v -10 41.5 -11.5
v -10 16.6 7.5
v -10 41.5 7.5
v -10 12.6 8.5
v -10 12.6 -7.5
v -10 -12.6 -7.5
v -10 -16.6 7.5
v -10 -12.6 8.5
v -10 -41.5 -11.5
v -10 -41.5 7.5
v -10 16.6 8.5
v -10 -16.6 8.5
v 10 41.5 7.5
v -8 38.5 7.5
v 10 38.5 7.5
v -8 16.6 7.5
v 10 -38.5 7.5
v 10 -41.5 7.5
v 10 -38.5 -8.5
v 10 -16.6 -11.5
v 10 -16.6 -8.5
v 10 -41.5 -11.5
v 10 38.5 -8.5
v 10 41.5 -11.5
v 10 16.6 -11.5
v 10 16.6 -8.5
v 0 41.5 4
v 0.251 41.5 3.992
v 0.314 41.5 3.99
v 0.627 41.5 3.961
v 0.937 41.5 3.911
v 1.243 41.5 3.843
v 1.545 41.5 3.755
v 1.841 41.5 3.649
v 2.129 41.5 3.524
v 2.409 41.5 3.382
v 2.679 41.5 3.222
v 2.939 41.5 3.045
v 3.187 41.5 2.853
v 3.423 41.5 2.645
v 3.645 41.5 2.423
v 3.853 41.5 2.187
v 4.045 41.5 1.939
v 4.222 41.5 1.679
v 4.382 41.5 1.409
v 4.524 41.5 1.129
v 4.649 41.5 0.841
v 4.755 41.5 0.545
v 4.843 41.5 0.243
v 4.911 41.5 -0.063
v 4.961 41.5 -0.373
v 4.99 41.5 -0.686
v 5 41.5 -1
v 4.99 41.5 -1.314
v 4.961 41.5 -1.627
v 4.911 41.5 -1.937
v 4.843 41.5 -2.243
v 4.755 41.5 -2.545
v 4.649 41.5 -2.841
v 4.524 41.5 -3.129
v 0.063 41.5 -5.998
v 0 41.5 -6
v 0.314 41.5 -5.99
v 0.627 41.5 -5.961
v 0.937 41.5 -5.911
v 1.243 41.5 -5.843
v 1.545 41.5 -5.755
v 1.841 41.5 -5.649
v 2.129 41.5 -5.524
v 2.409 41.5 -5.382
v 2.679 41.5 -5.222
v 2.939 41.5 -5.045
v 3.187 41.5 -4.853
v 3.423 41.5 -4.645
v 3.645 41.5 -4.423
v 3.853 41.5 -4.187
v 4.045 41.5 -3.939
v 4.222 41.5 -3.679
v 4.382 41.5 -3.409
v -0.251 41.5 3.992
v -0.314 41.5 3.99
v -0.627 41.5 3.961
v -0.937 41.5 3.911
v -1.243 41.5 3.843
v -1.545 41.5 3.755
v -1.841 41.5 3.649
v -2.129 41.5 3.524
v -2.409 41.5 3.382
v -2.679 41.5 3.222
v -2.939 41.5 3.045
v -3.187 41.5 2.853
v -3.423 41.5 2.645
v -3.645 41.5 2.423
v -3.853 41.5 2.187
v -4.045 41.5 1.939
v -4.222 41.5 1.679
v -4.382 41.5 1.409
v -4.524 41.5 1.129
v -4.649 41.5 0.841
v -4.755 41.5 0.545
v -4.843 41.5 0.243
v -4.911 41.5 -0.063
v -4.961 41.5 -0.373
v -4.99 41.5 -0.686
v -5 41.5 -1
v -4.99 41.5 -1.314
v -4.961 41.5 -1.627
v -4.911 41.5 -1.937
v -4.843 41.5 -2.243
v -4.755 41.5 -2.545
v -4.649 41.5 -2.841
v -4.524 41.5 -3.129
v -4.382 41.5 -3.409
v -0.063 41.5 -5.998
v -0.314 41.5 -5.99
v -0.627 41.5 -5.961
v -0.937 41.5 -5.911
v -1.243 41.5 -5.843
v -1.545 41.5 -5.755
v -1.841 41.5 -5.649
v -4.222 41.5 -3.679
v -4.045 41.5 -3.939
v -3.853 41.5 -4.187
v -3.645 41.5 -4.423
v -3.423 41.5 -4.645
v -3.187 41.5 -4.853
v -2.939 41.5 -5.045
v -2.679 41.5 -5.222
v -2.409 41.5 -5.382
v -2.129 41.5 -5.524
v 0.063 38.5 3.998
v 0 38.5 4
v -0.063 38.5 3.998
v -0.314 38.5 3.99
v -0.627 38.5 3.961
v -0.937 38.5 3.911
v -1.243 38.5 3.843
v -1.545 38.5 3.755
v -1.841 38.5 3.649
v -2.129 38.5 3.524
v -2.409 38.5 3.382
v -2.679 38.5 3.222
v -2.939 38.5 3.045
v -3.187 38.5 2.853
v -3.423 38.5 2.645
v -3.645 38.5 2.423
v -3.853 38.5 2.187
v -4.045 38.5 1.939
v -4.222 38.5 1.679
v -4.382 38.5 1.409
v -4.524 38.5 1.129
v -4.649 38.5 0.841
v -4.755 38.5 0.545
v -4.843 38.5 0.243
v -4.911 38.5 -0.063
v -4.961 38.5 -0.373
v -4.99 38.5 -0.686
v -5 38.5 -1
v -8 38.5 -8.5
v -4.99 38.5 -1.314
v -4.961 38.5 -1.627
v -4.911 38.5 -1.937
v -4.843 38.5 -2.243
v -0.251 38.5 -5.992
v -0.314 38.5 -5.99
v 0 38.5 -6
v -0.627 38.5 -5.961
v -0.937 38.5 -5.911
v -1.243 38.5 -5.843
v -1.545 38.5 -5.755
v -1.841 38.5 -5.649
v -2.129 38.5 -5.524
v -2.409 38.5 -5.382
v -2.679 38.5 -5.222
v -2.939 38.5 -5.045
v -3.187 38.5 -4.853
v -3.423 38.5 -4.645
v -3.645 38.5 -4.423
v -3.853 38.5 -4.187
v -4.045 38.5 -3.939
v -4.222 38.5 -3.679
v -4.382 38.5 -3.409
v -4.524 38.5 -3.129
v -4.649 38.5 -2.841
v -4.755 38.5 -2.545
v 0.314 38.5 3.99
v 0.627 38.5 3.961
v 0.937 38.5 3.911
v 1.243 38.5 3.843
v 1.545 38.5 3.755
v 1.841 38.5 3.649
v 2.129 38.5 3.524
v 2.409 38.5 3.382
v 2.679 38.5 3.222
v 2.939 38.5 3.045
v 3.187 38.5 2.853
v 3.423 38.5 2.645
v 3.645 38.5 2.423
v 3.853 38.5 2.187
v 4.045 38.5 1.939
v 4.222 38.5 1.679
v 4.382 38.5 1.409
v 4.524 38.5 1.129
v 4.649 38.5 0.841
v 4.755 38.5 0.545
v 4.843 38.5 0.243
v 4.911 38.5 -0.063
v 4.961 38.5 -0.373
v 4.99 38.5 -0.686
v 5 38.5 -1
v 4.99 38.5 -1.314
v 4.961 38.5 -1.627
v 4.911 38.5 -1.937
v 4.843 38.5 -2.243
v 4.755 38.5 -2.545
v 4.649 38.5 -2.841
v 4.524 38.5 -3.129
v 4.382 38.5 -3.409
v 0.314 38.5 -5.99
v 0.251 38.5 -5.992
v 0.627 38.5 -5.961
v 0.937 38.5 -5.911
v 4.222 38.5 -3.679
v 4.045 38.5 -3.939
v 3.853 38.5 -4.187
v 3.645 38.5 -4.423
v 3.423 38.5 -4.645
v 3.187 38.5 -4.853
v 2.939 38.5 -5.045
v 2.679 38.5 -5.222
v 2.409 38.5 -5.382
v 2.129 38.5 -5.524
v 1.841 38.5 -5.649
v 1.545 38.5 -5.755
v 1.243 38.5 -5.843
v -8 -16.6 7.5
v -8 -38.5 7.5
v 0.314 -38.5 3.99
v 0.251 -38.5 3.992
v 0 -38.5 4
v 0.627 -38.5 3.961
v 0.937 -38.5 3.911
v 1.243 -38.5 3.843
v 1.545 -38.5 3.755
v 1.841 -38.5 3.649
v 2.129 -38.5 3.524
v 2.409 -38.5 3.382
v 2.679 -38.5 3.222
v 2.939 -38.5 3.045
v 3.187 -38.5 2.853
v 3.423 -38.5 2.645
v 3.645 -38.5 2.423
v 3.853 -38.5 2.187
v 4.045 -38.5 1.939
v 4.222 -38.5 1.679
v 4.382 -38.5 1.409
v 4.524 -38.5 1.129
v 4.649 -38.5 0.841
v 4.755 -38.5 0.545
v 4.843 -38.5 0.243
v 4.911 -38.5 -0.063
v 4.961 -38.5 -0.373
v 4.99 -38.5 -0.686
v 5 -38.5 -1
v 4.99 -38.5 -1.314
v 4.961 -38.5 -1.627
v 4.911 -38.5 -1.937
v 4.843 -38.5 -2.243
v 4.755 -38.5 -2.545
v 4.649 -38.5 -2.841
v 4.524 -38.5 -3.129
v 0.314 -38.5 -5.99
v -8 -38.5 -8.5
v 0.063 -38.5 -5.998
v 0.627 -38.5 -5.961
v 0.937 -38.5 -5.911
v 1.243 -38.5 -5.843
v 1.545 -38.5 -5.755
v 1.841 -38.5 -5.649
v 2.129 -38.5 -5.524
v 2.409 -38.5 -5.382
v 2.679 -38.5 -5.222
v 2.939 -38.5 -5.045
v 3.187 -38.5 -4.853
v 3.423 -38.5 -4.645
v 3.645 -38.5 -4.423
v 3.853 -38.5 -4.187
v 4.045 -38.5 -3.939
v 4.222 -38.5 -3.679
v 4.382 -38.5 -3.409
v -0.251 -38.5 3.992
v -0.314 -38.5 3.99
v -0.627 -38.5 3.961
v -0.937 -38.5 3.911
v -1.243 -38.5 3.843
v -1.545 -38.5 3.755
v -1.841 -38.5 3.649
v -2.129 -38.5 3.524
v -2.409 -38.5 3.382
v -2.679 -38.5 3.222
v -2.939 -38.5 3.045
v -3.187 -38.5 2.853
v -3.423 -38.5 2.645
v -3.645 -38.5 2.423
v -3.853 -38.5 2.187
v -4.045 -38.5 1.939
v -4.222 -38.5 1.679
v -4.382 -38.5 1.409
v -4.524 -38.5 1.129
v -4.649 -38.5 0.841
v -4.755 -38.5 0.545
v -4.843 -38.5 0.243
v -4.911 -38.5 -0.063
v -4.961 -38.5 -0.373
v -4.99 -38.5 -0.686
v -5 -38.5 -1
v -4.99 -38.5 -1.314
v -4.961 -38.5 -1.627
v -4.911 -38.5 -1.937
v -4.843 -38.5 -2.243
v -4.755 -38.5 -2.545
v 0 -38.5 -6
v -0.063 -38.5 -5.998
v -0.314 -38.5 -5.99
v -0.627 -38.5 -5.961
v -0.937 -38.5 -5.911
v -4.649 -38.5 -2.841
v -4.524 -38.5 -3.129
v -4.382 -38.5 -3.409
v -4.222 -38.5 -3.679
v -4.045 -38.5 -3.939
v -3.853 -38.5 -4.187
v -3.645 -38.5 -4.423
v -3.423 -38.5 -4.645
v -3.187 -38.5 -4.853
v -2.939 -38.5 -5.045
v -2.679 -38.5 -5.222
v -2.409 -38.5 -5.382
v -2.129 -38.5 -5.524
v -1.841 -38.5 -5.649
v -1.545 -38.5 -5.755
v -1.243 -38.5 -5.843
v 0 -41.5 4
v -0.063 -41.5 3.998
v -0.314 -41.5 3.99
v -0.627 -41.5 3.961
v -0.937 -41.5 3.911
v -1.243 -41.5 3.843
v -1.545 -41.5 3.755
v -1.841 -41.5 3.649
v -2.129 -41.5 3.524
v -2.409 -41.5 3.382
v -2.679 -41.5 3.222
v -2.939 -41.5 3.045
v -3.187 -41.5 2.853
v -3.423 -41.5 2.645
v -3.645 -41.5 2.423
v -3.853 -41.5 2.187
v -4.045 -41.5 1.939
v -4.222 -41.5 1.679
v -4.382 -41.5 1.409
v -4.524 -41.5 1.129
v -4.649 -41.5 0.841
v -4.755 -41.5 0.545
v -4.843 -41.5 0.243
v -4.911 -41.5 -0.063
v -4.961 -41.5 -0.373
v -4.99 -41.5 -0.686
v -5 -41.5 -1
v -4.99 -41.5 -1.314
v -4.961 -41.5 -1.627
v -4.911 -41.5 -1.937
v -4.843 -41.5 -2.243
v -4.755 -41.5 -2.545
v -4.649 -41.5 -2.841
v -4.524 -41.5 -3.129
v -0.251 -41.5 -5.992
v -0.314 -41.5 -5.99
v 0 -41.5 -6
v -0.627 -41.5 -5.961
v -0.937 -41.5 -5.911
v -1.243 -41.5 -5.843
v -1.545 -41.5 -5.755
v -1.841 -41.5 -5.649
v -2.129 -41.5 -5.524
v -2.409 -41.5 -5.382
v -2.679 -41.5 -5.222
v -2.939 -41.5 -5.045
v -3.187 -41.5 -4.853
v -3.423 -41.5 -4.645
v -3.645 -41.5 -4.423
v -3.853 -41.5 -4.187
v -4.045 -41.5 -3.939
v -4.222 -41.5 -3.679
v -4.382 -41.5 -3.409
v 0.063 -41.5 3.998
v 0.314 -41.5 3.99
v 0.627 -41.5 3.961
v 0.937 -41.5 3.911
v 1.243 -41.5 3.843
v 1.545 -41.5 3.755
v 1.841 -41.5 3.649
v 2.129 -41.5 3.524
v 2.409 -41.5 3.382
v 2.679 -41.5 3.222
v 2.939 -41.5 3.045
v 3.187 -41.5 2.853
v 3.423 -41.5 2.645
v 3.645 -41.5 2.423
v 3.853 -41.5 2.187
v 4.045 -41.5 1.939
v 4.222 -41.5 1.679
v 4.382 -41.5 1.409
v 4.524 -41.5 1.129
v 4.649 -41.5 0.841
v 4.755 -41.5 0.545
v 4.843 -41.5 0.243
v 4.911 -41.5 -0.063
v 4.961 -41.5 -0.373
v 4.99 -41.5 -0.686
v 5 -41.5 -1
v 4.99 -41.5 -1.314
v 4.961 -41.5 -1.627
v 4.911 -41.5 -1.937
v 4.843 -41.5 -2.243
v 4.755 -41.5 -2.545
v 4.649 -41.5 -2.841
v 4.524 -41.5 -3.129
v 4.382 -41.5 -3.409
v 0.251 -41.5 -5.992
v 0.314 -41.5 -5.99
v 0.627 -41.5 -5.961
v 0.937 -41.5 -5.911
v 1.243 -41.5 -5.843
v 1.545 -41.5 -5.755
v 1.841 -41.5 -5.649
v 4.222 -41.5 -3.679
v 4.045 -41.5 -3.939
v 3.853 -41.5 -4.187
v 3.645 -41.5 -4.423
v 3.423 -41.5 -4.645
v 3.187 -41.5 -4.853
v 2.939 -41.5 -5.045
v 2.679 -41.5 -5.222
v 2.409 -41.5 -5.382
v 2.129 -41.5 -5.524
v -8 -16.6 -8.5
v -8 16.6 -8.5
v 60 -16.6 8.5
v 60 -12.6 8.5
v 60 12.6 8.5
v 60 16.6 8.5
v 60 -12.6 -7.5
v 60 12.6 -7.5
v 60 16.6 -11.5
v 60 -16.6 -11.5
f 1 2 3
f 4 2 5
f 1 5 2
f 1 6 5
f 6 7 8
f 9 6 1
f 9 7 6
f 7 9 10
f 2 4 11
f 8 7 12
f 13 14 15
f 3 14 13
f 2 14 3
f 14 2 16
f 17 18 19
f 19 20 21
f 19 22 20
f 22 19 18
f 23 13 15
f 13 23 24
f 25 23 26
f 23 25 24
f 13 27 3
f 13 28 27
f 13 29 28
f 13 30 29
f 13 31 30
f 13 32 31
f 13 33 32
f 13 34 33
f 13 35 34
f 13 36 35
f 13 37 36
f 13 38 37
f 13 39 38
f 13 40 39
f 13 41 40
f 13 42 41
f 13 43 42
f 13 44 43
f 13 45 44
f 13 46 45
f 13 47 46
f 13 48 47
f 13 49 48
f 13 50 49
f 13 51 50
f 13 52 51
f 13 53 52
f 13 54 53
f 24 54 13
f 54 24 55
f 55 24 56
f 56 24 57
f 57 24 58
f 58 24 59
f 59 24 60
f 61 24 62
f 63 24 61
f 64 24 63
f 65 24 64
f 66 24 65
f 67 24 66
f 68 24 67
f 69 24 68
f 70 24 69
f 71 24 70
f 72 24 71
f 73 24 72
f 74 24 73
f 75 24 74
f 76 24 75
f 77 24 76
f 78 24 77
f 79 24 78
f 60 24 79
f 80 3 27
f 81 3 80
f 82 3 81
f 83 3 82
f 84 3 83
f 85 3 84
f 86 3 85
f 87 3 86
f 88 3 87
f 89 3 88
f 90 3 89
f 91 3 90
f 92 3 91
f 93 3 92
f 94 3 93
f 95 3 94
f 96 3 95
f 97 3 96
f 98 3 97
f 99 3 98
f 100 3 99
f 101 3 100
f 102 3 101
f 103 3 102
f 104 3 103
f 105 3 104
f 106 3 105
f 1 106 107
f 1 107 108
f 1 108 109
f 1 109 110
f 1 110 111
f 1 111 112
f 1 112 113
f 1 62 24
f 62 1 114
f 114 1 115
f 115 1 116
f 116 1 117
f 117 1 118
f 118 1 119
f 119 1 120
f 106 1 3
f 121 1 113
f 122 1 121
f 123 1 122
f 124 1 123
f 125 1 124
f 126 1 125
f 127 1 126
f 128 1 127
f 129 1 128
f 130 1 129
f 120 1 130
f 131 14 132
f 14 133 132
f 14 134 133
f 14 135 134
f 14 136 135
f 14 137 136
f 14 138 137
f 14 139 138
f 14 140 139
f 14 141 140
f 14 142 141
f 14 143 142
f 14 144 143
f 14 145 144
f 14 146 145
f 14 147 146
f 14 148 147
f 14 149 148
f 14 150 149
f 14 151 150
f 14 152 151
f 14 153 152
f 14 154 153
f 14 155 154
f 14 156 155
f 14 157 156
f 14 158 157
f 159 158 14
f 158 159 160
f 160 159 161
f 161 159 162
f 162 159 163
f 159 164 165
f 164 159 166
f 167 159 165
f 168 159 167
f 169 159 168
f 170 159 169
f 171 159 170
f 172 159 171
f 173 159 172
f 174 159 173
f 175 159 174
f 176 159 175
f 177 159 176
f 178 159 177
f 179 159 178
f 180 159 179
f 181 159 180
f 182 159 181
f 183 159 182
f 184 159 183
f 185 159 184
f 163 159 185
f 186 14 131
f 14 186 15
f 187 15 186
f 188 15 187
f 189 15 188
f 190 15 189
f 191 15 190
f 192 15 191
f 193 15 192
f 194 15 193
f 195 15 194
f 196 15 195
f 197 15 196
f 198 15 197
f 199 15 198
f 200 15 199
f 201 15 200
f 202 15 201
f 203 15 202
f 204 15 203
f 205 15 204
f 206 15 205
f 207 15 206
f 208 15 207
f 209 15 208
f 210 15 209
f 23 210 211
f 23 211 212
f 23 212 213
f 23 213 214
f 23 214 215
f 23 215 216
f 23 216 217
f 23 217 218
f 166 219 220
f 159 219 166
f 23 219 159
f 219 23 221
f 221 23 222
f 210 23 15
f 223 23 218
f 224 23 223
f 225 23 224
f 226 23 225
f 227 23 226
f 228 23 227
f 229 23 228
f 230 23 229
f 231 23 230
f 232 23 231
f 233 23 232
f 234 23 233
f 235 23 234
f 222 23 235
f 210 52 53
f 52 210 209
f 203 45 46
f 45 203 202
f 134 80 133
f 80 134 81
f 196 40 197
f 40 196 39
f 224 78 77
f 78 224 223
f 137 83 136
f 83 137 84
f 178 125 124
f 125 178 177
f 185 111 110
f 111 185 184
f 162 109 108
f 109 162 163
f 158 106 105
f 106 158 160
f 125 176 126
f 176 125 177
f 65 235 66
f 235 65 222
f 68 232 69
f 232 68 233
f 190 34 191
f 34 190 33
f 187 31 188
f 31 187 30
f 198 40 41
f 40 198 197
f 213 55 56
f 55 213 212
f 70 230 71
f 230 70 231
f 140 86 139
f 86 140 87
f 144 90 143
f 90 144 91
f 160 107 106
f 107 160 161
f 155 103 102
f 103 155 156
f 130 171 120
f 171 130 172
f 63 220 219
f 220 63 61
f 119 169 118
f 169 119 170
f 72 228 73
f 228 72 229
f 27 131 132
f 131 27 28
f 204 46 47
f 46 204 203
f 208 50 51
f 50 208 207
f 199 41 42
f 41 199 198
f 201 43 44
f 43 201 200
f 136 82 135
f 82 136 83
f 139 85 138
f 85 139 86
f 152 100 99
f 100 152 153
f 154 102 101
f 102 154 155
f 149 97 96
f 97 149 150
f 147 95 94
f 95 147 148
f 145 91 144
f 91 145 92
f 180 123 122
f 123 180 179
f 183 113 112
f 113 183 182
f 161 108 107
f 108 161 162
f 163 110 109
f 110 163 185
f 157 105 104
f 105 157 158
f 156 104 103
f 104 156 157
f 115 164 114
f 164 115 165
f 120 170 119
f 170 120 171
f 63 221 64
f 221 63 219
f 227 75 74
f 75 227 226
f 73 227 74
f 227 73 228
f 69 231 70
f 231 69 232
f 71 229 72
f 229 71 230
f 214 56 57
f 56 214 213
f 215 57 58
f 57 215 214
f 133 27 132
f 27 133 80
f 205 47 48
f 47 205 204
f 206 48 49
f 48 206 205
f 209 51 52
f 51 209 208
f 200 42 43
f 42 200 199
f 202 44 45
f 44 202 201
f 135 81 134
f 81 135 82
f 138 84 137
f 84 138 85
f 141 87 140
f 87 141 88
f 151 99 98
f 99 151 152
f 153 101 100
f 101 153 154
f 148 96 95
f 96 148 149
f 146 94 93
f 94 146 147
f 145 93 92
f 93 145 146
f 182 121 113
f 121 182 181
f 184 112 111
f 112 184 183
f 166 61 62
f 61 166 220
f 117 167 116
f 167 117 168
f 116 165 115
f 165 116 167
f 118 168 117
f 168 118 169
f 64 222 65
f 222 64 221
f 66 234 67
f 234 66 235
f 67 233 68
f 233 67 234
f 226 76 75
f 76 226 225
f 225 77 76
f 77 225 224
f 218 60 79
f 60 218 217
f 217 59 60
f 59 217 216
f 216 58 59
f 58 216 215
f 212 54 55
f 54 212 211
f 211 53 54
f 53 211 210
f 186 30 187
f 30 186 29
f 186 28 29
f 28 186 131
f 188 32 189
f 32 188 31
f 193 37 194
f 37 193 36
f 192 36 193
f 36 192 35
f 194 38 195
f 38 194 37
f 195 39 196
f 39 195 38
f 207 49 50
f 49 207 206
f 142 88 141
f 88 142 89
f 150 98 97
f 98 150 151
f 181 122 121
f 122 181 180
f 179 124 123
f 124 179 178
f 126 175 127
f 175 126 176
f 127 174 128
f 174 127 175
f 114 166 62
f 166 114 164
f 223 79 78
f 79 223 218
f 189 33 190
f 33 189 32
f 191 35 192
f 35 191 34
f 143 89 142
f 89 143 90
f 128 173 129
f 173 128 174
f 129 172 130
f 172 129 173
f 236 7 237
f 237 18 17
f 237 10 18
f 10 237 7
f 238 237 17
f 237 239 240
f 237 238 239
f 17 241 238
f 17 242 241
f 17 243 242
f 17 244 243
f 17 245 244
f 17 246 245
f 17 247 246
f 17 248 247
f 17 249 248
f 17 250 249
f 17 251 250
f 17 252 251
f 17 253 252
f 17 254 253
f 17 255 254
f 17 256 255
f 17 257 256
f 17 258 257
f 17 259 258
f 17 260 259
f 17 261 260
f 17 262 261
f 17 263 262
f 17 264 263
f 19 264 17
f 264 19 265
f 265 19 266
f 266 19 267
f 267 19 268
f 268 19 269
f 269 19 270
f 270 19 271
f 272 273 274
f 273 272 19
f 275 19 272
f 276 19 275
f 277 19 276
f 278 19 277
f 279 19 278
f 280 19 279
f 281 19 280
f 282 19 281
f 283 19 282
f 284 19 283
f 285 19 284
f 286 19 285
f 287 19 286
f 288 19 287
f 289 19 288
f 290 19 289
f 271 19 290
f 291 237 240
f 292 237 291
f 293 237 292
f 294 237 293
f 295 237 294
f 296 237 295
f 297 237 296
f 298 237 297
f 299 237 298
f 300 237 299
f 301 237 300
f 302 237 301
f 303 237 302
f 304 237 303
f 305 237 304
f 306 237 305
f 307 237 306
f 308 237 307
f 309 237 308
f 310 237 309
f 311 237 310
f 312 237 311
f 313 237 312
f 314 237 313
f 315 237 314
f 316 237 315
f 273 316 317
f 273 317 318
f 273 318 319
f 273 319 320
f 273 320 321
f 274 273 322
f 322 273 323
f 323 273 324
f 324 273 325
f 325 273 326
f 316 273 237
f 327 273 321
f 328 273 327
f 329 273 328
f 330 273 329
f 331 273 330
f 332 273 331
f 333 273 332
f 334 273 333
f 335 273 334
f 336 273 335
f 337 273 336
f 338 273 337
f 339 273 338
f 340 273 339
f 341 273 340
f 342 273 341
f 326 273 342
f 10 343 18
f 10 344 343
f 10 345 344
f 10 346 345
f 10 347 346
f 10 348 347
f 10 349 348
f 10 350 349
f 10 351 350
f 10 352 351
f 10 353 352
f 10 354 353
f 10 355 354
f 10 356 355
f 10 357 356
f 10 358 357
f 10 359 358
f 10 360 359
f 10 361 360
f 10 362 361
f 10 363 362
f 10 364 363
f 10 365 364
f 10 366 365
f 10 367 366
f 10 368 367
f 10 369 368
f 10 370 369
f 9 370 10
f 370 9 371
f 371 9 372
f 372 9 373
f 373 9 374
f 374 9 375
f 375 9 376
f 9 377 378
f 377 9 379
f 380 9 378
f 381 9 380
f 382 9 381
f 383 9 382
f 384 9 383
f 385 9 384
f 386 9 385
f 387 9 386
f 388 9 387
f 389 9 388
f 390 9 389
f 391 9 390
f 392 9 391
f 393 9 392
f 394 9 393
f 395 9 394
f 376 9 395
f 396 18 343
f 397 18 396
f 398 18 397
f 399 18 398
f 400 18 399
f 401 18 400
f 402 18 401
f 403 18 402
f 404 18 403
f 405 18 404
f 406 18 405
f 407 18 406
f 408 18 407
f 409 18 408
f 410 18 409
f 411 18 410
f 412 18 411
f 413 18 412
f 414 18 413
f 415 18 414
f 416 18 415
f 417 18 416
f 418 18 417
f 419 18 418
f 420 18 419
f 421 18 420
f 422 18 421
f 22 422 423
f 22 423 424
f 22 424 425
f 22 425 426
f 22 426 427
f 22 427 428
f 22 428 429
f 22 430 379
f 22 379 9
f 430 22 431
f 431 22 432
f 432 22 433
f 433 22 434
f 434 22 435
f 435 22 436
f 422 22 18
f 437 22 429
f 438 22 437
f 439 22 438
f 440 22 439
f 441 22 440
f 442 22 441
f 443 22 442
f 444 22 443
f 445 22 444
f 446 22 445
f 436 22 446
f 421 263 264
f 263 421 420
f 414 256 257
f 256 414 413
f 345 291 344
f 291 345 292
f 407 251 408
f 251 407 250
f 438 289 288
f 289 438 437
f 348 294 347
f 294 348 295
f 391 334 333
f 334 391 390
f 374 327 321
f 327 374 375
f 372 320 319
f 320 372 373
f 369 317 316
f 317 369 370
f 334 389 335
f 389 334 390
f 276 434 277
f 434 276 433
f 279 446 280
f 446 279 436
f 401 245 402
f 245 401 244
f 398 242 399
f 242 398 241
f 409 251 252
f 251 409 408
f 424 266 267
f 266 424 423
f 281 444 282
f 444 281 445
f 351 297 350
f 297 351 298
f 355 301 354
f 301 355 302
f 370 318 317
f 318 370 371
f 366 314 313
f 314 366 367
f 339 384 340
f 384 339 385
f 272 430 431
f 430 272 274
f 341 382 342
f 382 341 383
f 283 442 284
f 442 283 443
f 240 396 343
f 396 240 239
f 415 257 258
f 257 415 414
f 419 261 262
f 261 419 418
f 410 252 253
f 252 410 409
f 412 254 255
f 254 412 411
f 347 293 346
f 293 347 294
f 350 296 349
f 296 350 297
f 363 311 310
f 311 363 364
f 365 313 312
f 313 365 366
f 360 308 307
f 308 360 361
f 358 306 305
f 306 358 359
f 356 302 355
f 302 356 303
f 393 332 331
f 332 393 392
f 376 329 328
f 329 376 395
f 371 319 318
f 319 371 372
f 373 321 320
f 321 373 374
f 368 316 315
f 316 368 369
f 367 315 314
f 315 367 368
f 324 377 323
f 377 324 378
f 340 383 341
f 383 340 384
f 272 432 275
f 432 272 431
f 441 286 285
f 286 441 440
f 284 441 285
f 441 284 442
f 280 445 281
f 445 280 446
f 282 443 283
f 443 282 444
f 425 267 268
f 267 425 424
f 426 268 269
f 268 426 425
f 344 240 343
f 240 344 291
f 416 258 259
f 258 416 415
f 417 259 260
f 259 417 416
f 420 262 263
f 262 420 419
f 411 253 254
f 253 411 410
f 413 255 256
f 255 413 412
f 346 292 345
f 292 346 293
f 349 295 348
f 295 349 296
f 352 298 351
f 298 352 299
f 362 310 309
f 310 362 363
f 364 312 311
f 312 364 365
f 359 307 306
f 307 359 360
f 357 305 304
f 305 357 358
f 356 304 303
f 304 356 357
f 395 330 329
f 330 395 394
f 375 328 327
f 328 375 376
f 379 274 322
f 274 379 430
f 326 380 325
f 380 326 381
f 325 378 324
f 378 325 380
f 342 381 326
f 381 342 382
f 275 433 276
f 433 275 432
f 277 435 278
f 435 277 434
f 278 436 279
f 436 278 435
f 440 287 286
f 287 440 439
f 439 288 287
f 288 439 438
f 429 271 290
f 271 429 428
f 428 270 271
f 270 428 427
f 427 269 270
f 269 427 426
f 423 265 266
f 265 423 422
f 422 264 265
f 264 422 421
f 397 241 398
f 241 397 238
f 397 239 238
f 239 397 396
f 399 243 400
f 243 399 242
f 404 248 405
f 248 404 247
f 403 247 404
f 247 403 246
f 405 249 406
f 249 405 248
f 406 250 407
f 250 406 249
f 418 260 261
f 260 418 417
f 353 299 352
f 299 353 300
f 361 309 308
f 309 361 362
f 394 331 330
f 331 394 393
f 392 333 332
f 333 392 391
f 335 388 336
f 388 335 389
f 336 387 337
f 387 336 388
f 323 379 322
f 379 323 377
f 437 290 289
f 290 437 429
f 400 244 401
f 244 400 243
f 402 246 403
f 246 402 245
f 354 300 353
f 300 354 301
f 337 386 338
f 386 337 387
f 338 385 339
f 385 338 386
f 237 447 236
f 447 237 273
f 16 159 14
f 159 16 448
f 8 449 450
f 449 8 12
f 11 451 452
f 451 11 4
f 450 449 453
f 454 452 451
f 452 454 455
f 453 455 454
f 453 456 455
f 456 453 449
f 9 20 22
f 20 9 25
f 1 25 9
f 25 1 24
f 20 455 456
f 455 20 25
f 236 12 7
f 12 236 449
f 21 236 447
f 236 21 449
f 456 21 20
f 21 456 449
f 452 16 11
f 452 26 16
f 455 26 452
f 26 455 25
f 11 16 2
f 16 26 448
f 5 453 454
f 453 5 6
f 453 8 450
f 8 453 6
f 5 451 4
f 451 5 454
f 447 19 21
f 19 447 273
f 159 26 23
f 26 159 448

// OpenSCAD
$fn = 100;
larghezza = 80;
spessore = 3;
for (i = [larghezza/2,-larghezza/2]){
    translate([0,i,-1]){
        difference() {
            cube ([20,spessore,17],true);
                rotate([90,0,0]){
                    cylinder(5,5,5,true);
            }
        }
    }
}
translate([0,0,-10]){
    cube([20,larghezza+spessore,spessore],true);
}

for (i = [-larghezza/2+13,larghezza/2-13]){
    translate([-9,i,-1]){
        cube([2,25,17],true);
    }
}


module Aggancio(){
    lunghezza_blocco = 70;
    larghezza_tubo = 25.2;
    altezza_tubo = 16;
    spessore_frame = 4;

    difference(){
        translate([0,(-larghezza_tubo - spessore_frame*2)/2,0]){
            cube([lunghezza_blocco,larghezza_tubo + spessore_frame*2 ,altezza_tubo+spessore_frame]);
        }
        translate([0,-larghezza_tubo/2,spessore_frame]){
            cube([lunghezza_blocco,larghezza_tubo,altezza_tubo]);
        }
    }
}

translate([-10,0,-11.5]){
Aggancio();
}
